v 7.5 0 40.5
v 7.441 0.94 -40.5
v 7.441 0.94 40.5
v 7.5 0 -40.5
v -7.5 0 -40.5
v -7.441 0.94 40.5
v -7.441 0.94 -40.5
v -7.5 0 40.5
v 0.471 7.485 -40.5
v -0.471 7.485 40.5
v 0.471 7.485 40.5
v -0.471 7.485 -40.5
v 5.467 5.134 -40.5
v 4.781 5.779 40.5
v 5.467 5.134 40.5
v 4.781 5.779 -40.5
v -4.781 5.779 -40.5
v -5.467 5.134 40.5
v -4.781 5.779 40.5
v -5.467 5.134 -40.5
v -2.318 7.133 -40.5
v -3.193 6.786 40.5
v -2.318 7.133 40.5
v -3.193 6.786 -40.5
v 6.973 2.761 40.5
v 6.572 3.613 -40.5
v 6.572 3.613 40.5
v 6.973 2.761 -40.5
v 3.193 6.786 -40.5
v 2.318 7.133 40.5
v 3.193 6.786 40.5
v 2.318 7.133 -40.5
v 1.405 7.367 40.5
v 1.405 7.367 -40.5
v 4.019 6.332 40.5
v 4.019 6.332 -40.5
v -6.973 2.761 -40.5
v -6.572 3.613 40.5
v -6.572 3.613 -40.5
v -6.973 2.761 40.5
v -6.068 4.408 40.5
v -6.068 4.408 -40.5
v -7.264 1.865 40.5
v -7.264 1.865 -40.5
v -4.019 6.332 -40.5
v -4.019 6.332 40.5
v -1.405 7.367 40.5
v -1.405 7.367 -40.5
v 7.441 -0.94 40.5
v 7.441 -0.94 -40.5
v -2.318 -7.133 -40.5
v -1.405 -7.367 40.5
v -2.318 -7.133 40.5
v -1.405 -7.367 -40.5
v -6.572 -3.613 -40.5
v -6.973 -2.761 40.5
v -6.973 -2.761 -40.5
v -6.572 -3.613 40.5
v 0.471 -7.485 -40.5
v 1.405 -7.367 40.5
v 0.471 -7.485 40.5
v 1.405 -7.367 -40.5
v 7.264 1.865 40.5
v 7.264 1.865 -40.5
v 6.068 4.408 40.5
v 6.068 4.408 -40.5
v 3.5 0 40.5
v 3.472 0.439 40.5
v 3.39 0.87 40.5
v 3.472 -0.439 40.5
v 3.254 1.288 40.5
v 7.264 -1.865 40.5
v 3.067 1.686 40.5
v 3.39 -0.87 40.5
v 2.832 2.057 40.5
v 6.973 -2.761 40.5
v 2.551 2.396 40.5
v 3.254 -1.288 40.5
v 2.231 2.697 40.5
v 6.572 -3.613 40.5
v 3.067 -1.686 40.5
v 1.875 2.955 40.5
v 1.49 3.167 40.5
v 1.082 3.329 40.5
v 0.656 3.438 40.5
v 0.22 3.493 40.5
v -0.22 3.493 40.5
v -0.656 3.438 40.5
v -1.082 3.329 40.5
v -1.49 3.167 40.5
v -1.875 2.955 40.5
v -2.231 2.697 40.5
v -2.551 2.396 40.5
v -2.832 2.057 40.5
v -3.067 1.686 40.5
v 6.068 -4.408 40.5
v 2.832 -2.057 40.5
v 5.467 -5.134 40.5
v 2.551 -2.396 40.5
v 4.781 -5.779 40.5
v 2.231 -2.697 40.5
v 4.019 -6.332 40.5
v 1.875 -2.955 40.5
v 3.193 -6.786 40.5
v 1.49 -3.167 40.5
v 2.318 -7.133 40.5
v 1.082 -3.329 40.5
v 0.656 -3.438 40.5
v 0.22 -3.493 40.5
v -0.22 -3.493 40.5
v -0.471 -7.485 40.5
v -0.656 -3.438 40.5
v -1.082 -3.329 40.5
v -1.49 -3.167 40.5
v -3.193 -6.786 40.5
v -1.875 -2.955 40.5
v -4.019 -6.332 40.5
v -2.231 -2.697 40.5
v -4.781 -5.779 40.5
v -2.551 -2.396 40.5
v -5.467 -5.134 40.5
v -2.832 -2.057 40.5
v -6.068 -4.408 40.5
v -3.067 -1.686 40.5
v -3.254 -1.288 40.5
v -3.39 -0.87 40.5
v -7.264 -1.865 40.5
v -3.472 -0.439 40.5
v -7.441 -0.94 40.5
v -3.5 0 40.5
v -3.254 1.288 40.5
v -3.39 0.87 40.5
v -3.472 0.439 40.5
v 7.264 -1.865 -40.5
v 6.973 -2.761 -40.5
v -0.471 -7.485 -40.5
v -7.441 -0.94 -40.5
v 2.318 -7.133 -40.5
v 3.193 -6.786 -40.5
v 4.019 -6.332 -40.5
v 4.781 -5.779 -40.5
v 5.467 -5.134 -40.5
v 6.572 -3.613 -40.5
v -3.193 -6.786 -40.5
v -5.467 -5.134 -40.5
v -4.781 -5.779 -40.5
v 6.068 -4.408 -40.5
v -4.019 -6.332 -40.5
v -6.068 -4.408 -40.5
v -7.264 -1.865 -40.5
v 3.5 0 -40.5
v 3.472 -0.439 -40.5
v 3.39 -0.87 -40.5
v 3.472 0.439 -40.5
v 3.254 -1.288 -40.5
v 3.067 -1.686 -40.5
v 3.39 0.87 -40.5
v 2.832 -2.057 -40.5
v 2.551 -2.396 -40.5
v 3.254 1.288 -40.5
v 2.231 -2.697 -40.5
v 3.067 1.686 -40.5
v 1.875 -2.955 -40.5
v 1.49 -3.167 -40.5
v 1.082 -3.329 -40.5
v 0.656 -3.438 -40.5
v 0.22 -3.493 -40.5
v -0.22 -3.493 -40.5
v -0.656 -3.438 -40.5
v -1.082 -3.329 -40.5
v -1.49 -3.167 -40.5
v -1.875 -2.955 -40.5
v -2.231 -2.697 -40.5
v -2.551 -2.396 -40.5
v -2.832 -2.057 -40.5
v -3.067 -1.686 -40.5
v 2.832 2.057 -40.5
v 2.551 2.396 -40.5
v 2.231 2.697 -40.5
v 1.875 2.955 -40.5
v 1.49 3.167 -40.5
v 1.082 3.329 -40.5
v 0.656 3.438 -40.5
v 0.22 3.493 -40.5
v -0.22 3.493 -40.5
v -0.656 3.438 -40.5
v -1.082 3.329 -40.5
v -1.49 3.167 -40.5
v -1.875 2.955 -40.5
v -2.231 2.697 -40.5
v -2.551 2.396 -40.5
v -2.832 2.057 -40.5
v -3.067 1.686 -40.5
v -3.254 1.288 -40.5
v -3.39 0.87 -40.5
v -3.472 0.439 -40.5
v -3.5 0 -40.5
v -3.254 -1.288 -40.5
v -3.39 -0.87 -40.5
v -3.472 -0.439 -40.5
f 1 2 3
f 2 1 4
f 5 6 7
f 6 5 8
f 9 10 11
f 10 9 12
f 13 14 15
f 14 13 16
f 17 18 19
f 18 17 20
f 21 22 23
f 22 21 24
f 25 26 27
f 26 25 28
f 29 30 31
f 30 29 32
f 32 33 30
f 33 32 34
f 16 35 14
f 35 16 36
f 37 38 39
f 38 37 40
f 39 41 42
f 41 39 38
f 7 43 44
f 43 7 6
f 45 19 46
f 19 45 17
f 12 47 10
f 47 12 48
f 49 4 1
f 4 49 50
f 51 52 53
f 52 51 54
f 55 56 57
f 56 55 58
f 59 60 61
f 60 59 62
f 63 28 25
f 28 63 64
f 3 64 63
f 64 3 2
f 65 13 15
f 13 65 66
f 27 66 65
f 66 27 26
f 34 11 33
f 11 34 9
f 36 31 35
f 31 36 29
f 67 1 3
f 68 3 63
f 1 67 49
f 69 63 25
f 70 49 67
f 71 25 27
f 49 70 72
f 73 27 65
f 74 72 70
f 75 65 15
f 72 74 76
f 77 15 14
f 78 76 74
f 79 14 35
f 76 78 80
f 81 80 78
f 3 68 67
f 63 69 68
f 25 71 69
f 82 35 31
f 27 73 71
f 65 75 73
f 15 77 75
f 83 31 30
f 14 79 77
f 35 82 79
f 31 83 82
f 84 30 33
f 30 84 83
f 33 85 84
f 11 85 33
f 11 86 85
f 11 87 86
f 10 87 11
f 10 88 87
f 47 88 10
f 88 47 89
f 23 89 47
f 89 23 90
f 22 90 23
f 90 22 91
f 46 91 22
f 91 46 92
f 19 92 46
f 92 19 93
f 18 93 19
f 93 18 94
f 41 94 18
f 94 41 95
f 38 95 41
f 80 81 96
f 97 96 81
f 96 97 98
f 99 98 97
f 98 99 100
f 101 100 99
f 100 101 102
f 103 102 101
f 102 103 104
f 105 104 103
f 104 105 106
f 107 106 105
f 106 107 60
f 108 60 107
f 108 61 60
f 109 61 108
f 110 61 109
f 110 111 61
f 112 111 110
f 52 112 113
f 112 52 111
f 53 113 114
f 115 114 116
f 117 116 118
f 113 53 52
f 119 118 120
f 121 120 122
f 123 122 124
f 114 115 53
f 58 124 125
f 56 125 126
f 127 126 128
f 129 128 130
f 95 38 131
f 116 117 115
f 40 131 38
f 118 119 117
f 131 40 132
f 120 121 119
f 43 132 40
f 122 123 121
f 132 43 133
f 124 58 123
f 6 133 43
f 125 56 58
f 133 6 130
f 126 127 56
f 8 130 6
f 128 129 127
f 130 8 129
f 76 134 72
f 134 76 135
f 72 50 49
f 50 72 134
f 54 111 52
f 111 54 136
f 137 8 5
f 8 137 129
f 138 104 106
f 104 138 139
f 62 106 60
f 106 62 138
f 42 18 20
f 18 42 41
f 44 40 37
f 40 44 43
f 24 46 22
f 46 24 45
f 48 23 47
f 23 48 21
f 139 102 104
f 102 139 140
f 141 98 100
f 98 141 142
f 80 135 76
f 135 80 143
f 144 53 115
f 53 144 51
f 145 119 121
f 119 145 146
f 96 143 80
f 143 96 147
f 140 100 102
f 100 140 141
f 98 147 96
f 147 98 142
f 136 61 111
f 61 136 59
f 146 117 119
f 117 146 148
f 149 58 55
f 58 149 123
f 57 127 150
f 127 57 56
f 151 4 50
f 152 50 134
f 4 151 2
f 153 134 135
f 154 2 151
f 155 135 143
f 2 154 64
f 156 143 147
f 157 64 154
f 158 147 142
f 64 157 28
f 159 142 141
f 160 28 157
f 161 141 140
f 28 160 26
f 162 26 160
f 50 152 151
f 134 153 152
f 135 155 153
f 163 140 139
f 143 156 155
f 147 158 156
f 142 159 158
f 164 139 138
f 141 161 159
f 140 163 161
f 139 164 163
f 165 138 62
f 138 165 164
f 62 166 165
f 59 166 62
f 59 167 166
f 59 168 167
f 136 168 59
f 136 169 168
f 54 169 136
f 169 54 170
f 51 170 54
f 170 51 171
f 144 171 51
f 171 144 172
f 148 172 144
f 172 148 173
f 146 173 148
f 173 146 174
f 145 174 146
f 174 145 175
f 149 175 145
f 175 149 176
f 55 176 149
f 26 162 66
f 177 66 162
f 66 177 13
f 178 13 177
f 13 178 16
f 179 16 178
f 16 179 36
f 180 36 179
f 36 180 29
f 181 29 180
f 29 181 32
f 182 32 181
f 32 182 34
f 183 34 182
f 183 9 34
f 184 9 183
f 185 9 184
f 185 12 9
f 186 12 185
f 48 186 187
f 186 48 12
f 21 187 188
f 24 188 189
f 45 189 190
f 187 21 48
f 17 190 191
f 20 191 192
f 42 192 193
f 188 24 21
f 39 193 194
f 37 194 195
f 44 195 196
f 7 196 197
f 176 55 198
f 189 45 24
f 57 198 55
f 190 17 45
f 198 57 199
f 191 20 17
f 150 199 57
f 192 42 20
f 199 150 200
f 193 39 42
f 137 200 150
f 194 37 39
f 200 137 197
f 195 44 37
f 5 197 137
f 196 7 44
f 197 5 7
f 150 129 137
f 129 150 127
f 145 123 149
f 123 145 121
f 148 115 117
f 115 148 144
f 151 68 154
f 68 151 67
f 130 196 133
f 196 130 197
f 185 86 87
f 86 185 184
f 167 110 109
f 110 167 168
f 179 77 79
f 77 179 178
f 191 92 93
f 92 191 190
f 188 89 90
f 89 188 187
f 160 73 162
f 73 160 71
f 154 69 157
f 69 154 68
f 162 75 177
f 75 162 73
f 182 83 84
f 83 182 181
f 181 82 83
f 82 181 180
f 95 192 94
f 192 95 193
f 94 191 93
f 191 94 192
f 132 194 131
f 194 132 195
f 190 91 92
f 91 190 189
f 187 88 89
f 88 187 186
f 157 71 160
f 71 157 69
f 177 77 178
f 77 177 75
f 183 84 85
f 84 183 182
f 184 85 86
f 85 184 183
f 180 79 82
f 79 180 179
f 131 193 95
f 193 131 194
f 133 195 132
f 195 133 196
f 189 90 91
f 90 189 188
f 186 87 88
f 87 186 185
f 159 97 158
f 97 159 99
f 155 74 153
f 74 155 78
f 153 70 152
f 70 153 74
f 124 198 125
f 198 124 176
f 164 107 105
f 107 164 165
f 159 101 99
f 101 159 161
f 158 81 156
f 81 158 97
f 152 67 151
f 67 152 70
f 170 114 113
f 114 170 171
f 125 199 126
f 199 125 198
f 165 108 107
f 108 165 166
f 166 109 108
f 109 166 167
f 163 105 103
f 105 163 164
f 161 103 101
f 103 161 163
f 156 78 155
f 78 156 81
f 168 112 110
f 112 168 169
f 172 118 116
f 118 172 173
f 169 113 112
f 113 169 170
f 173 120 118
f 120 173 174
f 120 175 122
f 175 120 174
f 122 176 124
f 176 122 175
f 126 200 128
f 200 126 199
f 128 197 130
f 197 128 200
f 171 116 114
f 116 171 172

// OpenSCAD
$fn = 50;


difference() {
	union() {
		translate(v = [0, 0, -40.5000000000]) {
			cylinder(h = 81, r = 7.5000000000);
		}
	}
	union() {
		translate(v = [0, 0, -100.0000000000]) {
			cylinder(h = 200, r = 3.5000000000);
		}
	}
}
